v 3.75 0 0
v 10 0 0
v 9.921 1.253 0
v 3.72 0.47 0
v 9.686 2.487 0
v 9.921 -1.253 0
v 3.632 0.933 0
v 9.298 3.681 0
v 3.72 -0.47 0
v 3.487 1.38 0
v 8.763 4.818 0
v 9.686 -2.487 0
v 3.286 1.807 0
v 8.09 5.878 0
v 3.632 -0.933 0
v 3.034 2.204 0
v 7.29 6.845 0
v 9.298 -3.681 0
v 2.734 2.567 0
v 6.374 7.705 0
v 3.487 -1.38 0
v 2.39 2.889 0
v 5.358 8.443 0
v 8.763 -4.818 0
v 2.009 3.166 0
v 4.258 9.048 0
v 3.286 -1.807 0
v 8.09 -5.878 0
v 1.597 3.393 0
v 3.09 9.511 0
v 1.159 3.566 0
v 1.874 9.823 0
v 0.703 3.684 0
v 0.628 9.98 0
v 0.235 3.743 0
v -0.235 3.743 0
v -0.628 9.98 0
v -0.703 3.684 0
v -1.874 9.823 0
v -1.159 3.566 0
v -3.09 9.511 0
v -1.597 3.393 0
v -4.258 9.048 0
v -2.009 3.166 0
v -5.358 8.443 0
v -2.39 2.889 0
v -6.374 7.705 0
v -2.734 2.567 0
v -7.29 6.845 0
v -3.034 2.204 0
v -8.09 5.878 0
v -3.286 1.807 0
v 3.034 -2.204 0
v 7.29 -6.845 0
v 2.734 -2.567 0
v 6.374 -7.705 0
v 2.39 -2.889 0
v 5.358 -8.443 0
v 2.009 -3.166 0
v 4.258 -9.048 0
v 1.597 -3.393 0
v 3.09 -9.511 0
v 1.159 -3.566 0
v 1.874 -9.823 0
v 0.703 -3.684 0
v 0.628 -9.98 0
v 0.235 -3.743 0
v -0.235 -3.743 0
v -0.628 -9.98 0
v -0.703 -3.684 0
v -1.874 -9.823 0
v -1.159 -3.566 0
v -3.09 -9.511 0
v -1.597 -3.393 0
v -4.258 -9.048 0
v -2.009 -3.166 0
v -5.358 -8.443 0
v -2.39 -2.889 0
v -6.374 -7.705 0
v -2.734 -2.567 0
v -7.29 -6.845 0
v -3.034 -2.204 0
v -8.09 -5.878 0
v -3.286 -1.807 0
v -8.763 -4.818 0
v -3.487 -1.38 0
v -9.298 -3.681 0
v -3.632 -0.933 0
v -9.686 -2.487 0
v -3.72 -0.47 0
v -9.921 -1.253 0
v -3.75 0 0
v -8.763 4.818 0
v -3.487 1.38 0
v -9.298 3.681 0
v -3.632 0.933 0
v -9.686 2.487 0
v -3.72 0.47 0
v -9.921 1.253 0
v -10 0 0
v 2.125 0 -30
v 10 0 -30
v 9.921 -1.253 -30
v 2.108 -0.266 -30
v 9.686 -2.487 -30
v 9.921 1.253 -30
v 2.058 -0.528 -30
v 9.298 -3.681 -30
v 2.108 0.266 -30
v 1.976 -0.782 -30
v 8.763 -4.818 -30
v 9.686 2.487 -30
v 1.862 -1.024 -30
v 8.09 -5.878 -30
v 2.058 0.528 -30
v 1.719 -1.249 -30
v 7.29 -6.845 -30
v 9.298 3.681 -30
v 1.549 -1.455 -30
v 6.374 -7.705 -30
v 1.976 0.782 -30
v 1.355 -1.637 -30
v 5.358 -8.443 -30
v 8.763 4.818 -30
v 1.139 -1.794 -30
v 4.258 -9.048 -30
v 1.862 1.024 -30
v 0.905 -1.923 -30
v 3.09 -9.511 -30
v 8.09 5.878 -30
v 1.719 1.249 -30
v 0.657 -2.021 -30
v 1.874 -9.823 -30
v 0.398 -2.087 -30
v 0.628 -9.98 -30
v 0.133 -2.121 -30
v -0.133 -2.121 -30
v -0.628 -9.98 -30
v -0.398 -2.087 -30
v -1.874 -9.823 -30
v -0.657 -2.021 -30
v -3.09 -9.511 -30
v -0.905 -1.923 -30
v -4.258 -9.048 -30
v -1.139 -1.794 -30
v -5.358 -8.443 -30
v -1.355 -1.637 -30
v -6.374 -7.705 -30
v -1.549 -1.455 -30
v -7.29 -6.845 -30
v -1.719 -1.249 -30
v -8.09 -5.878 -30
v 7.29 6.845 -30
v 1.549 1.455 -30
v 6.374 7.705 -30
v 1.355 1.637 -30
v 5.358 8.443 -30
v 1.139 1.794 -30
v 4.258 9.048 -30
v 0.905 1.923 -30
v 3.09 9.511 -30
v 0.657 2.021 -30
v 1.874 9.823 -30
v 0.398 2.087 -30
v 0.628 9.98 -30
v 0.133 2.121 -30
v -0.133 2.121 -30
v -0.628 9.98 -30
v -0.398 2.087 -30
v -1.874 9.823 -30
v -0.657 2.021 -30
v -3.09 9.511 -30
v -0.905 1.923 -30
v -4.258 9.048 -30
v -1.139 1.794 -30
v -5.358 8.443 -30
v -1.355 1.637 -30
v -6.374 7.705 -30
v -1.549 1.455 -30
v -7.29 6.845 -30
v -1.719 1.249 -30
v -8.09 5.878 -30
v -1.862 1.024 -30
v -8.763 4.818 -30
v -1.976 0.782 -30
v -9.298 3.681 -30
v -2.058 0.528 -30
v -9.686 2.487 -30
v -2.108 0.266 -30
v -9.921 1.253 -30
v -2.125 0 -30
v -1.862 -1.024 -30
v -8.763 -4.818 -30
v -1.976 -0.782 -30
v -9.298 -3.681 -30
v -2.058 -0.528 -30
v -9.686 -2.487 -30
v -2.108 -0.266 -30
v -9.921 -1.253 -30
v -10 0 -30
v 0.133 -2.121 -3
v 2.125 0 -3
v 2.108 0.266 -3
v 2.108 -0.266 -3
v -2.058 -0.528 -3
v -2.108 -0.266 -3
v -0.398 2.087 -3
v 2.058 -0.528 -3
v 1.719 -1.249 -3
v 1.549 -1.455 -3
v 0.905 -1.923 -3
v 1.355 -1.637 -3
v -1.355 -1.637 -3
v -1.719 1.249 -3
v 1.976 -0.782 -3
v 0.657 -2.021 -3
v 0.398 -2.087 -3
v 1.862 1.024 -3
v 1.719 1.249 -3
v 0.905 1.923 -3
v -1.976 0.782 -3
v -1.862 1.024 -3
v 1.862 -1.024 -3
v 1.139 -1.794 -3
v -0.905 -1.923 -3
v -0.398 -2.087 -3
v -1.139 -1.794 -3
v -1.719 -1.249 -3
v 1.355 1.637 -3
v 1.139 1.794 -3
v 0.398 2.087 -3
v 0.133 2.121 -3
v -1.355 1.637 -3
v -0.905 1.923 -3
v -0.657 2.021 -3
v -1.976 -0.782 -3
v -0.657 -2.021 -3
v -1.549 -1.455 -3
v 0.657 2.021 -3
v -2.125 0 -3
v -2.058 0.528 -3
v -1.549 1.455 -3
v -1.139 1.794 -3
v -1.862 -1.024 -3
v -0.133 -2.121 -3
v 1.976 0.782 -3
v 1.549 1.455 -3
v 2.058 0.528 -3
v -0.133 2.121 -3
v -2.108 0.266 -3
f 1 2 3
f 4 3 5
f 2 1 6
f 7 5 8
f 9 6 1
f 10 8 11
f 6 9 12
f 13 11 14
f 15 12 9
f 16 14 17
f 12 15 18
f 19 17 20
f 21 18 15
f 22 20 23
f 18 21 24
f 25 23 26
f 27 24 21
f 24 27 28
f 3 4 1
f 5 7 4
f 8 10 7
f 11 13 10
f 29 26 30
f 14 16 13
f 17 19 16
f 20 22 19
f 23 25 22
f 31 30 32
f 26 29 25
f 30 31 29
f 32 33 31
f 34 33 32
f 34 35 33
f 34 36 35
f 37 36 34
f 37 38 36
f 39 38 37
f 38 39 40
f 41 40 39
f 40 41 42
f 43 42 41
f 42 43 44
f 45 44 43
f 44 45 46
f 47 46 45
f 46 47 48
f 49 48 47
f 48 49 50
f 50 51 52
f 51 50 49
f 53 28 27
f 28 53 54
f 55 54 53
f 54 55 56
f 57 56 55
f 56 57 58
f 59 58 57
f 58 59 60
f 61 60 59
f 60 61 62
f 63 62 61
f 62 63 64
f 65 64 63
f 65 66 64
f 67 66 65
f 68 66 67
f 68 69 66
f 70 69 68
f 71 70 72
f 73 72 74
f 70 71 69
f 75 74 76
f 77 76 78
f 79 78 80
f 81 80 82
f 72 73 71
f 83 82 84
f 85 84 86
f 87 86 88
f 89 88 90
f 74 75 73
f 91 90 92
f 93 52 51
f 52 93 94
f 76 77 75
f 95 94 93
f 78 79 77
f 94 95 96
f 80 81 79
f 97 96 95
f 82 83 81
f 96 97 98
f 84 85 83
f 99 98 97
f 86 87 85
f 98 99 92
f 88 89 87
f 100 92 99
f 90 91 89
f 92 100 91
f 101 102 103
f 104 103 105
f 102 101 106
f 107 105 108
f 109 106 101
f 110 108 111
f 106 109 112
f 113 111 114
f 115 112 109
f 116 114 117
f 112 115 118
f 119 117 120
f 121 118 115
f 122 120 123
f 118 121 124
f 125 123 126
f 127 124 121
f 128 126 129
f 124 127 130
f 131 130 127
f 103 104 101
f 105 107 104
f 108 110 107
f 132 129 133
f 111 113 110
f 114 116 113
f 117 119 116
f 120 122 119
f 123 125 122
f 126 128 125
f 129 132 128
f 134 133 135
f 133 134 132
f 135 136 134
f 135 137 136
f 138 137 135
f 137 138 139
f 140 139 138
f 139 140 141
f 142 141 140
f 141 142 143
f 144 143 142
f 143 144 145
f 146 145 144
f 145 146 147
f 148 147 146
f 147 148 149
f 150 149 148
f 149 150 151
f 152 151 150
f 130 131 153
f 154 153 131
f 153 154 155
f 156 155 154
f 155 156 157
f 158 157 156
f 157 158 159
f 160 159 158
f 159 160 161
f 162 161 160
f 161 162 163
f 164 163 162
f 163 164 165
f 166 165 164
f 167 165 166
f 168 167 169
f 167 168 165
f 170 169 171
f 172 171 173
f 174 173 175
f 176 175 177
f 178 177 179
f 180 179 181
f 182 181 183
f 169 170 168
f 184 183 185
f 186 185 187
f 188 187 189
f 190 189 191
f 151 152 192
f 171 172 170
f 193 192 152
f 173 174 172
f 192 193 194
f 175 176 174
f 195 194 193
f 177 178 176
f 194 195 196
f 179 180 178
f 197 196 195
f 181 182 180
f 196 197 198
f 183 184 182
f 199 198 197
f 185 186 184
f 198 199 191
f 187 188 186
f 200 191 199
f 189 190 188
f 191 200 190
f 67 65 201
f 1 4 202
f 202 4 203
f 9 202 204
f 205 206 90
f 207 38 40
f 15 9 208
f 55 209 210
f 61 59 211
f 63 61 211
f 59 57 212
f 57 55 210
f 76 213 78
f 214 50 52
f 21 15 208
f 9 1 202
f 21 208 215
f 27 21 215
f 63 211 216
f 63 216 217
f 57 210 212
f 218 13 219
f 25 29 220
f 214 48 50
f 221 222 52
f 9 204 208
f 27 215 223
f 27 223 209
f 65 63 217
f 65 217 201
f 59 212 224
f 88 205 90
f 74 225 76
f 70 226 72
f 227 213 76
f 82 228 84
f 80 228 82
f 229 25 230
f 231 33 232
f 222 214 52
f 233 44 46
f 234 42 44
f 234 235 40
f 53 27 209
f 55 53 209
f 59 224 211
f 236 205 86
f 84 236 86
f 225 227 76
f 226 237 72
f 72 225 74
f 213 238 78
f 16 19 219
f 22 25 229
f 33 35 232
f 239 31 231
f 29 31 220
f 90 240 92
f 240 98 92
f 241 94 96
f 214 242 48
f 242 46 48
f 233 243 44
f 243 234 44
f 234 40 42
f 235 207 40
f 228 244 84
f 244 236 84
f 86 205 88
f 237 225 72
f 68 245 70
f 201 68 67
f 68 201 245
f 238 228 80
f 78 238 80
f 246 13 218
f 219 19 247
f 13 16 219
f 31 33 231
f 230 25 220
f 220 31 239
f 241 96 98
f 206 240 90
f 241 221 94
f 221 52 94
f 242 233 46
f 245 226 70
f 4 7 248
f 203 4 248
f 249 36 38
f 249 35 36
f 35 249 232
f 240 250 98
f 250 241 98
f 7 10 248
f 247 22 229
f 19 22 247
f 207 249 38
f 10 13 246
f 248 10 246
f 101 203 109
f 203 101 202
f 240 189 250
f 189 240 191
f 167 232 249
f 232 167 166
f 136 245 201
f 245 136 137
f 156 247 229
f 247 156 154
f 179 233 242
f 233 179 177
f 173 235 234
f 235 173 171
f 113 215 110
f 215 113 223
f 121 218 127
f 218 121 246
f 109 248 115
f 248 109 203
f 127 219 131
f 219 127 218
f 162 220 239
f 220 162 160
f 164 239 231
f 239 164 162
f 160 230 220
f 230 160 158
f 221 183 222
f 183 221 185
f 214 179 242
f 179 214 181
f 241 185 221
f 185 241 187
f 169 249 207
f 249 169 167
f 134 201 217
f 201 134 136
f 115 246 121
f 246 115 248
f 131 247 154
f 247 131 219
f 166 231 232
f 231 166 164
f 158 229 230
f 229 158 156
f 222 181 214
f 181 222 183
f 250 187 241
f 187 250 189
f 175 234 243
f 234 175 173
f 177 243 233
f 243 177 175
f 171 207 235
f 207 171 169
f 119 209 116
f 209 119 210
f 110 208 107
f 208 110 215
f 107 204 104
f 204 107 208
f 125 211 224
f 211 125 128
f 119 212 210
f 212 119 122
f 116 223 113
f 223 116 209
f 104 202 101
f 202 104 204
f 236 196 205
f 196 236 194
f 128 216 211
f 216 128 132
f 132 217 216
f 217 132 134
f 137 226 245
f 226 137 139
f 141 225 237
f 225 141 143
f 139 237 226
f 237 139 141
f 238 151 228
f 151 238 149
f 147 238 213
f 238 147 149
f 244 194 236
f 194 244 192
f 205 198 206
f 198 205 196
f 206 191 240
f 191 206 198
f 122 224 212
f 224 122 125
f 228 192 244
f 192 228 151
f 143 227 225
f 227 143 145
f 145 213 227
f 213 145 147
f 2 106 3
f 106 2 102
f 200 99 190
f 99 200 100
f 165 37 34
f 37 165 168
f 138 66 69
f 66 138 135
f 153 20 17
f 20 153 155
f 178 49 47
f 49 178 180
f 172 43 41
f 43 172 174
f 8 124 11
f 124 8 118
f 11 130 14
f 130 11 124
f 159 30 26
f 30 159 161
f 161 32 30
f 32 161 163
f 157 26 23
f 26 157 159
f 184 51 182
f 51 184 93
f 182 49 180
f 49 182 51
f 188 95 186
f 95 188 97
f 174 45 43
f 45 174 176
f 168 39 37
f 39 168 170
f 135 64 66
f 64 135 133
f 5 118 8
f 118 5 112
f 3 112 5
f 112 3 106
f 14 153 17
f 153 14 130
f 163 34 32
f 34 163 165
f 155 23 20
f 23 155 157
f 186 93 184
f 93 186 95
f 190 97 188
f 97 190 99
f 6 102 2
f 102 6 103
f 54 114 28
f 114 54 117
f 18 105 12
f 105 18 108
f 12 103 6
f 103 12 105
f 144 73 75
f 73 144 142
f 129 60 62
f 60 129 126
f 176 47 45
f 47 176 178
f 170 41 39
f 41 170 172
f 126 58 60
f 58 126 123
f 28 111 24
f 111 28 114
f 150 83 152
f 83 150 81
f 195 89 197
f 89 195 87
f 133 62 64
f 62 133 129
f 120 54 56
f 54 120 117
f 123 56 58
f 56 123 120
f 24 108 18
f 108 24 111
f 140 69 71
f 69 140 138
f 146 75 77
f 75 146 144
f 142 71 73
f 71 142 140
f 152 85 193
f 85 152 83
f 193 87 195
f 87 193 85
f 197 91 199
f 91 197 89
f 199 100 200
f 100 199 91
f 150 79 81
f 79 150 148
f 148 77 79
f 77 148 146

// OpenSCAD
$fn = 50;


difference() {
	union() {
		translate(v = [0, 0, -30.0000000000]) {
			cylinder(h = 30, r = 10.0000000000);
		}
	}
	union() {
		translate(v = [0, 0, 0]) {
			rotate(a = [0, 0, 0]) {
				difference() {
					union() {
						#translate(v = [0, 0, -30.0000000000]) {
							cylinder(h = 30, r = 2.0000000000);
						}
						#translate(v = [0, 0, -3]) {
							cylinder(h = 3, r1 = 2.1250000000, r2 = 3.7500000000);
						}
						#translate(v = [0, 0, -30.0000000000]) {
							cylinder(h = 30, r = 2.1250000000);
						}
						#translate(v = [0, 0, -30.0000000000]) {
							cylinder(h = 30, r = 2.0000000000);
						}
					}
					union();
				}
			}
		}
	}
}
